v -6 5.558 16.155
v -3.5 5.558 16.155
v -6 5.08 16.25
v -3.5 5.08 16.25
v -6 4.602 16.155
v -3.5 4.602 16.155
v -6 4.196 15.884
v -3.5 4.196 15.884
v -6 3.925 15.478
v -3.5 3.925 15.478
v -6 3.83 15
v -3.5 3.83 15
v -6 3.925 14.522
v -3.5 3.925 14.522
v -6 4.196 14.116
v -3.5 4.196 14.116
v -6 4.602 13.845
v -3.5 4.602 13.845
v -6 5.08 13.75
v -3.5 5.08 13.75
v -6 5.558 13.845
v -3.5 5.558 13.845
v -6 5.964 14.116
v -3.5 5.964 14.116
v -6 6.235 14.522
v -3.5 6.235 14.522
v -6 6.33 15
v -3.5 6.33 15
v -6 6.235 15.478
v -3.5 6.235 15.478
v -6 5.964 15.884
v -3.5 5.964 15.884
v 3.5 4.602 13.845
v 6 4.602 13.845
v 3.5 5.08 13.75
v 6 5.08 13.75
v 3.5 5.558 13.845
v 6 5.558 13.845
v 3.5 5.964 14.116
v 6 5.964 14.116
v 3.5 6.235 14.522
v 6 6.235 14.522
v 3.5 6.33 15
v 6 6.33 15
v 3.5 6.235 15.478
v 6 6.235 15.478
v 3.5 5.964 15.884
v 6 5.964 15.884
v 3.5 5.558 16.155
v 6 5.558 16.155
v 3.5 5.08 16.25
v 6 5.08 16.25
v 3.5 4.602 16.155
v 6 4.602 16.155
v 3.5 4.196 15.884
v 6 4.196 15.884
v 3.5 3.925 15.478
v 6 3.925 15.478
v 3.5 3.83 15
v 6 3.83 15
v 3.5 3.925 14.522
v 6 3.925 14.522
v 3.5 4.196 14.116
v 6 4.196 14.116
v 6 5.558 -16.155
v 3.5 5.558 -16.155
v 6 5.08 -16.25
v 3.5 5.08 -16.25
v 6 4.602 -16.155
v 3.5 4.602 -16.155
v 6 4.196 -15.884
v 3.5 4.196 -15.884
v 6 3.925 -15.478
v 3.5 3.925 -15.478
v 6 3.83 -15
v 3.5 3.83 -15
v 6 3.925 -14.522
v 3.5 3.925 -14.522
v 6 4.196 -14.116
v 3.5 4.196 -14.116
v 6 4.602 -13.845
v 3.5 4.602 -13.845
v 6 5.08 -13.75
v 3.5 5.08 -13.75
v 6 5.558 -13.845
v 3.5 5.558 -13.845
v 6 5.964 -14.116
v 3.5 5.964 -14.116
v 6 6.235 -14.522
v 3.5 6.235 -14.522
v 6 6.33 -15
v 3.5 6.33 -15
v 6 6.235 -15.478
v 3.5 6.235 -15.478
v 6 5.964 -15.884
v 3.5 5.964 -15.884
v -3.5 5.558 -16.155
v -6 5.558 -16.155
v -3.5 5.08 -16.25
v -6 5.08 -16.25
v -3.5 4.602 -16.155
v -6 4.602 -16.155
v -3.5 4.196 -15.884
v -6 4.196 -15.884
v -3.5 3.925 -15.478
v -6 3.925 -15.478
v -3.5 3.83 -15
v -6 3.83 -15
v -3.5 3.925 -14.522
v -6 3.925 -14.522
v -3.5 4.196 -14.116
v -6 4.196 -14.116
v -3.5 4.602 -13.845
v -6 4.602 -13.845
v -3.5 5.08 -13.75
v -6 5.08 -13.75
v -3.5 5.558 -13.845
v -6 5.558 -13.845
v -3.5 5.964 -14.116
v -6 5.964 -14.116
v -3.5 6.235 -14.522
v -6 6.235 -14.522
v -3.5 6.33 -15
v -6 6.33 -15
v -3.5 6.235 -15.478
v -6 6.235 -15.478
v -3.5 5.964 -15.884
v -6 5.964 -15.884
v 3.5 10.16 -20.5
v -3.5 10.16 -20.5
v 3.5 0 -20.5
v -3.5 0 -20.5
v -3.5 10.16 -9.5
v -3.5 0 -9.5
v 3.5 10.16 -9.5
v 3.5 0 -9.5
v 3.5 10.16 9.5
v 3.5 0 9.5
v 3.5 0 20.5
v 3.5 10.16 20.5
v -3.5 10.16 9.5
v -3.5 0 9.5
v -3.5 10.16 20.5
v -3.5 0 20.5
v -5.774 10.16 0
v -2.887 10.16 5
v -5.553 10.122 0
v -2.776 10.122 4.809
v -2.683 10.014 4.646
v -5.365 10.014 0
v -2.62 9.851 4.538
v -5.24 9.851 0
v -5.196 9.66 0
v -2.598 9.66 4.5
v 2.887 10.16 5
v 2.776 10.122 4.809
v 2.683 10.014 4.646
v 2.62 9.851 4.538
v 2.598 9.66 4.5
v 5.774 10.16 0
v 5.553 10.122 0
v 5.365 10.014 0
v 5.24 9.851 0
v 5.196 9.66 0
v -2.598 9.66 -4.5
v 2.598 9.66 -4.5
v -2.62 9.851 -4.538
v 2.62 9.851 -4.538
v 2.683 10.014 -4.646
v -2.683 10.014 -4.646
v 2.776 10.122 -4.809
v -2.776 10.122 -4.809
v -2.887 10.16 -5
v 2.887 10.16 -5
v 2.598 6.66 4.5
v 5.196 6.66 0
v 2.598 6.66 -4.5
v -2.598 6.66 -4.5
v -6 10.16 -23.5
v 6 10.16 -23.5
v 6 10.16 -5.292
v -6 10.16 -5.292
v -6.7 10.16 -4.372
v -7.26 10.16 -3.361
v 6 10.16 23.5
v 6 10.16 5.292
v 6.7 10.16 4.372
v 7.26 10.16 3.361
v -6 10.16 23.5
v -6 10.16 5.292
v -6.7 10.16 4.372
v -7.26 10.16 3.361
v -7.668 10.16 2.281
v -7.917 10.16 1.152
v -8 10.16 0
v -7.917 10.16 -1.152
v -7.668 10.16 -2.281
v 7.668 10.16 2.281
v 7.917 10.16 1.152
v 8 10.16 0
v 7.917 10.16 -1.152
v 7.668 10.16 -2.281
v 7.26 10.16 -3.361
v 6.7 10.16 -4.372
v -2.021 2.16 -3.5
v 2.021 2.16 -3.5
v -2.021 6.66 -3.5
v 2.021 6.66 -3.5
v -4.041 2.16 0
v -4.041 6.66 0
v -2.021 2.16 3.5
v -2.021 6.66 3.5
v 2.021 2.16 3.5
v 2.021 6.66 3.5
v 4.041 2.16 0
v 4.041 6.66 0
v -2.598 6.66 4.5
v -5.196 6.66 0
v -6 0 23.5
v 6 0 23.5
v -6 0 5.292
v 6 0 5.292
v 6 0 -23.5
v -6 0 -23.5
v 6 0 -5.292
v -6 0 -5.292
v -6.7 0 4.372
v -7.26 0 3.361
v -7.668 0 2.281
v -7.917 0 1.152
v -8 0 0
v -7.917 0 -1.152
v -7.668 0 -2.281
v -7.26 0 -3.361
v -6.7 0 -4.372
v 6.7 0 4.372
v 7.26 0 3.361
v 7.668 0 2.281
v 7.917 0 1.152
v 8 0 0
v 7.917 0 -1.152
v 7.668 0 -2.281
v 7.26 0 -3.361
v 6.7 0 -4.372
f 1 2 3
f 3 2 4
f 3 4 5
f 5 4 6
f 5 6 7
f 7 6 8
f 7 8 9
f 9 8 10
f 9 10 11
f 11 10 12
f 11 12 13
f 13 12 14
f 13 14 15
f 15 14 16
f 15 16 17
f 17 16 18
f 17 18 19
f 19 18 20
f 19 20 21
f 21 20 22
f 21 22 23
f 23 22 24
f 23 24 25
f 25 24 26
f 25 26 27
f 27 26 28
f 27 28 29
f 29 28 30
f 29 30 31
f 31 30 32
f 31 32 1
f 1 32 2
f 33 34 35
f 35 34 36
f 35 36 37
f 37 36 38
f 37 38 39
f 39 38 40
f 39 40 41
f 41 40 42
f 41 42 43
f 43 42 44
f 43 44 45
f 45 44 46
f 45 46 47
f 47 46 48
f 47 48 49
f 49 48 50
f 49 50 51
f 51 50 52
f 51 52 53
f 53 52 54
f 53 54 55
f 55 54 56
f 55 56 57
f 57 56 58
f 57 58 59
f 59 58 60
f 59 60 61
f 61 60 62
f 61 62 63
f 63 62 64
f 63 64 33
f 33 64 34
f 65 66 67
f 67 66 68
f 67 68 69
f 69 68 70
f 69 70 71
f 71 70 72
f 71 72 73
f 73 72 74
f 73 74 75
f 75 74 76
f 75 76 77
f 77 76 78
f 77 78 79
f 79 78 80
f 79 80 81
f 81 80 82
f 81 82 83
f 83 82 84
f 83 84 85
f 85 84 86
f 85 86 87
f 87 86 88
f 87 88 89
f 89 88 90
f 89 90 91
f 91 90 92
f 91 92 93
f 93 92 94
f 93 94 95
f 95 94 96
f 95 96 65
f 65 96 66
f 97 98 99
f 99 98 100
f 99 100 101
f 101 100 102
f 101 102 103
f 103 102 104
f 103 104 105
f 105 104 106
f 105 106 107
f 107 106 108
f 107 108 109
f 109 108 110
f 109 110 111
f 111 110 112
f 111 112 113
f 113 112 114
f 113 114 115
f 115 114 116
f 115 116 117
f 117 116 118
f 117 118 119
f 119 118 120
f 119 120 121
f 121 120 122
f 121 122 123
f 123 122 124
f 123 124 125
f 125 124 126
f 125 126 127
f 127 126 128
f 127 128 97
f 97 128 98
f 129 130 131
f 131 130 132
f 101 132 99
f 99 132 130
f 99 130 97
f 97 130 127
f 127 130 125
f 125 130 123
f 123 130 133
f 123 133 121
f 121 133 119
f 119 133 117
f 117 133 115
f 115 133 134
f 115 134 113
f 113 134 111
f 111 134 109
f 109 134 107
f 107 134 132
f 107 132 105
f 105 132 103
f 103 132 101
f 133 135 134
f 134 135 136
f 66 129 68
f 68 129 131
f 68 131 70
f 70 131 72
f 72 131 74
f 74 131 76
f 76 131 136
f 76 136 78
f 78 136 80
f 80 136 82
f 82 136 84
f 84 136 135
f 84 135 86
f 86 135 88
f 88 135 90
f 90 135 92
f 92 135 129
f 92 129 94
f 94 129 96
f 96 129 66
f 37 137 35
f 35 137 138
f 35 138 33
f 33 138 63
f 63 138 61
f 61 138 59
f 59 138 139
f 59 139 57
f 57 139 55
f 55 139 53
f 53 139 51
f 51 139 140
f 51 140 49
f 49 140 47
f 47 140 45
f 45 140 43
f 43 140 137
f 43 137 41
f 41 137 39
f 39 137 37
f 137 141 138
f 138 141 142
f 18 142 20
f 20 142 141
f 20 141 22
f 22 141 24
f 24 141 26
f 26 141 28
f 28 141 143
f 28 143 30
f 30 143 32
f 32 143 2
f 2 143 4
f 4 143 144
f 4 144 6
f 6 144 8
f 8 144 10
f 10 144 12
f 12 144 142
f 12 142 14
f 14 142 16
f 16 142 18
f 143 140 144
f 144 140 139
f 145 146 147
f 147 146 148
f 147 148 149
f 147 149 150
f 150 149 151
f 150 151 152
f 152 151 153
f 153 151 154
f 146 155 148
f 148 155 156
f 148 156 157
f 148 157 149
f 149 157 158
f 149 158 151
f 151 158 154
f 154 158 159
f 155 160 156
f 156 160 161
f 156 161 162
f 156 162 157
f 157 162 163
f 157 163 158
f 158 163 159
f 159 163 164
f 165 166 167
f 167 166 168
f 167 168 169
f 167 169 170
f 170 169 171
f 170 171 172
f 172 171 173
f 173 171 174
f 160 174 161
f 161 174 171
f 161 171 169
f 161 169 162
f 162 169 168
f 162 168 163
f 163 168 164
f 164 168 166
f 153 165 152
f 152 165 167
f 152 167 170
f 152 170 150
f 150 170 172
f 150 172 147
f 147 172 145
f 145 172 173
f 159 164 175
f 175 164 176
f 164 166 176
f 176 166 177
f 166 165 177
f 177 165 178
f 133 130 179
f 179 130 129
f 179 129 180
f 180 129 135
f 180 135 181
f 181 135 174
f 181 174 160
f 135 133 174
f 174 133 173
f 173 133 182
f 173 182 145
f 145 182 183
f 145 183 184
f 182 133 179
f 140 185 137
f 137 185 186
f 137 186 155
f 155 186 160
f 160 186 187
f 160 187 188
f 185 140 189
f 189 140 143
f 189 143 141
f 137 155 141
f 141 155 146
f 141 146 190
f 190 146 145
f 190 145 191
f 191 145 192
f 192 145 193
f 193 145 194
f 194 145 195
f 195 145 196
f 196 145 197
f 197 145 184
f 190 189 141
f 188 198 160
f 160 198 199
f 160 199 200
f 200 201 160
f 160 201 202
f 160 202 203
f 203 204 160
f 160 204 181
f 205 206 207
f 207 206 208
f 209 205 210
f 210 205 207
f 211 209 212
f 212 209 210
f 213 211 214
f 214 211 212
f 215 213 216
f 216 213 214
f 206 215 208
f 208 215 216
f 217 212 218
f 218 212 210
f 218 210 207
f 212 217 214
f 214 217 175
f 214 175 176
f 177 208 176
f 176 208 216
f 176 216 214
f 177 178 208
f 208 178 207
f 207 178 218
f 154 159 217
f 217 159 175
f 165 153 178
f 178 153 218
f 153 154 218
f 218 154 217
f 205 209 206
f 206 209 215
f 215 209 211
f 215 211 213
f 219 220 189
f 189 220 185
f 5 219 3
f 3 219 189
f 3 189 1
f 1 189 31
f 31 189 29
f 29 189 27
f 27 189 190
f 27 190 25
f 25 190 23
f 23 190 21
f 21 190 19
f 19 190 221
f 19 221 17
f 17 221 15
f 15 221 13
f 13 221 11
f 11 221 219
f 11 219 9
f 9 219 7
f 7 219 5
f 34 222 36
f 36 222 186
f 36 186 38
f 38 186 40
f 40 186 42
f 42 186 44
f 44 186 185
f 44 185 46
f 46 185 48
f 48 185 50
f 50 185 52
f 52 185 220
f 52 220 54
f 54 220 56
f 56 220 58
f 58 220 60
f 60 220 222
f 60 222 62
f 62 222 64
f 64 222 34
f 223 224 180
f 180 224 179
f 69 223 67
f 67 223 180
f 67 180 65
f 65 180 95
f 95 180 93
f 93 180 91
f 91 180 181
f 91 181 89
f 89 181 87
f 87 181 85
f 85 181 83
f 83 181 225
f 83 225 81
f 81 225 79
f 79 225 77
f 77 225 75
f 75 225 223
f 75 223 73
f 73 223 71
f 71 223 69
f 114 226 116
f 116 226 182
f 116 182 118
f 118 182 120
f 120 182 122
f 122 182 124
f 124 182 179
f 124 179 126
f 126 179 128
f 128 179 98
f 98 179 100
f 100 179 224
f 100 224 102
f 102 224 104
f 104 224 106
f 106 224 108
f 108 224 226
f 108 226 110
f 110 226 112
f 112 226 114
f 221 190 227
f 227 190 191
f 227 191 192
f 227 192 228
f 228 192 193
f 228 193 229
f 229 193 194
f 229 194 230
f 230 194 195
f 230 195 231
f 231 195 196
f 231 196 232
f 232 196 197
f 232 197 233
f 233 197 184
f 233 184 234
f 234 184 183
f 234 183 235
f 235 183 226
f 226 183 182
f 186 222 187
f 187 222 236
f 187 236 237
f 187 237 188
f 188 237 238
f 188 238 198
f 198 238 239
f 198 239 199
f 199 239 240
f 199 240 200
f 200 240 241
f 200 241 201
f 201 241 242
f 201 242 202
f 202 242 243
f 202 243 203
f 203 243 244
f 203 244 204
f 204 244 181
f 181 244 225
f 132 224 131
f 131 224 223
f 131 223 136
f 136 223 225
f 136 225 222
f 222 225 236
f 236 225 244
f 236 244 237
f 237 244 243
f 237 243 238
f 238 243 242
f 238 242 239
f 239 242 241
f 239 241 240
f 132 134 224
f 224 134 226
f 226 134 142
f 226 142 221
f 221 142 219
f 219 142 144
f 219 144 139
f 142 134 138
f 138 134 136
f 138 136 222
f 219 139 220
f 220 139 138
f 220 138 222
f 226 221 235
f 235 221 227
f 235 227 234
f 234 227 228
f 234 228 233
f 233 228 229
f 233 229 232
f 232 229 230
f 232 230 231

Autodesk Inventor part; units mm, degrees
ref_plane "YZ Plane" through (0, 0, 0) normal (1, 0, 0) x (0, 1, 0)
ref_plane "XZ Plane" through (0, 0, 0) normal (0, 1, 0) x (-1, 0, 0)
ref_plane "XY Plane" through (0, 0, 0) normal (0, 0, 1) x (1, 0, 0)
sketch "스케치1" plane through (0, 0, 0) normal (0, 1, 0) x (-1, 0, 0)
  circle A0 centre (0, 0) radius 8
  dimension "d0" = 16
extrude "돌출1" add sketch "스케치1" along normal blind 10.16
sketch "스케치2" plane through (0, 10.16, 0) normal (0, 1, 0) x (1, 0, 0)
  circle A0 centre (0, 0) radius 4.5
  line L0 (2.5981, -4.5) -> (-2.5981, -4.5)
  line L1 (-2.5981, -4.5) -> (-5.1962, 0)
  line L2 (-5.1962, 0) -> (-2.5981, 4.5)
  line L3 (-2.5981, 4.5) -> (2.5981, 4.5)
  line L4 (2.5981, 4.5) -> (5.1962, 0)
  line L5 (5.1962, 0) -> (2.5981, -4.5)
  dimension "d3" = 9
sketch "스케치3" plane through (0, 0, 0) normal (0, -1, 0) x (1, 0, 0)
  line L0 (-3, 9.5) -> (3, 9.5)
  line L1 (3, 9.5) -> (3, 20.5)
  line L2 (3, 20.5) -> (-3, 20.5)
  line L3 (-3, 20.5) -> (-3, 9.5)
  line L4 (-3, 9.5) -> (3, 20.5) construction
  line L5 (3, 9.5) -> (-3, 20.5) construction
  line L6 (0, 0) -> (5.3002, 0)
  line L7 (-3, -9.5) -> (3, -9.5)
  line L8 (3, -9.5) -> (3, -20.5)
  line L9 (3, -20.5) -> (-3, -20.5)
  line L10 (-3, -20.5) -> (-3, -9.5)
  line L11 (-3, -9.5) -> (3, -20.5) construction
  line L12 (3, -9.5) -> (-3, -20.5) construction
  line L13 (6, 23.5) -> (-6, 23.5)
  line L14 (-6, 23.5) -> (-6, -23.5)
  line L15 (-6, -23.5) -> (6, -23.5)
  line L16 (6, -23.5) -> (6, 23.5)
  line L17 (6, 23.5) -> (-6, -23.5) construction
  line L18 (-6, 23.5) -> (6, -23.5) construction
  circle A0 centre (0, 0) radius 8 projected
  point P0 (0, 15)
  point P1 (0, -15)
  point P2 (6, 5.2915)
  point P3 (-6, 5.2915)
  point P4 (-6, -5.2915)
  point P5 (6, -5.2915)
  dimension "d7" = 6
  dimension "d8" = 11
  dimension "d10" = 15
  dimension "d11" = 3
  dimension "d12" = 3
extrude "돌출3" add sketch "스케치3" against normal blind 10.16 contours L3 L2 L1 L0 | L7 L8 L9 L10 | L16 A0 L14 L13 | L16 L15 L14 A0
extrude "돌출4" cut sketch "스케치2" against normal blind 8
sketch "스케치4" plane through (0, 2.16, 0) normal (0, 1, 0) x (1, 0, 0)
  line L0 (2.0207, 3.5) -> (4.0415, 0)
  line L1 (4.0415, 0) -> (2.0207, -3.5)
  line L2 (2.0207, -3.5) -> (-2.0207, -3.5)
  line L3 (-2.0207, -3.5) -> (-4.0415, 0)
  line L4 (-4.0415, 0) -> (-2.0207, 3.5)
  line L5 (-2.0207, 3.5) -> (2.0207, 3.5)
  line L6 (-2.5981, 4.5) -> (2.5981, 4.5) projected
  line L7 (2.5981, 4.5) -> (5.1962, 0) projected
  line L8 (-2.5981, 4.5) -> (2.5981, 4.5) projected
  line L9 (-5.1962, 0) -> (-2.5981, 4.5) projected
  line L10 (-2.5981, -4.5) -> (-5.1962, 0) projected
  line L11 (2.5981, -4.5) -> (-2.5981, -4.5) projected
  line L12 (5.1962, 0) -> (2.5981, -4.5) projected
  point P0 (0, 0)
  point P1 (0, 0)
  dimension "d17" = 1
extrude "돌출5" add sketch "스케치4" along normal blind 4.5
fillet "모깎기2" radius 0.5 6 edges at (3.8971, 10.16, -2.25) (3.8971, 10.16, 2.25) (0, 10.16, -4.5) (0, 10.16, 4.5) (-3.8971, 10.16, 2.25) (-3.8971, 10.16, -2.25)
sketch "스케치6" plane through (0, 10.16, 0) normal (0, 1, 0) x (1, 0, 0)
  line L0 (-3.5, -9.5) -> (3.5, -9.5)
  line L1 (3.5, -9.5) -> (3.5, -20.5)
  line L2 (3.5, -20.5) -> (-3.5, -20.5)
  line L3 (-3.5, -20.5) -> (-3.5, -9.5)
  line L4 (-3.5, -9.5) -> (3.5, -20.5) construction
  line L5 (3.5, -9.5) -> (-3.5, -20.5) construction
  line L6 (-6, -23.5) -> (6, -23.5) projected
  line L7 (6, -23.5) -> (6, -5.2915) projected
  line L8 (2.8868, -5) -> (5.7735, 0) projected
  line L9 (-5.1962, 0) -> (-5.7735, 0) projected
  line L10 (5.7735, 0) -> (-5.7735, 0)
  line L11 (-3.5, 9.5) -> (3.5, 9.5)
  line L12 (3.5, 9.5) -> (3.5, 20.5)
  line L13 (3.5, 20.5) -> (-3.5, 20.5)
  line L14 (-3.5, 20.5) -> (-3.5, 9.5)
  line L15 (-3.5, 9.5) -> (3.5, 20.5) construction
  line L16 (3.5, 9.5) -> (-3.5, 20.5) construction
  line L17 (-6, 23.5) -> (6, 23.5)
  line L18 (6, 23.5) -> (6, 5.2915)
  point P0 (0, 0)
  point P1 (0, -15)
  point P2 (0, 15)
  point P3 (0, 0)
  dimension "d21" = 7
  dimension "d22" = 11
  dimension "d23" = 3
extrude "돌출6" cut sketch "스케치6" against normal blind 10.16
sketch "스케치7" plane through (-6, 0, 5.2915) normal (-1, 0, 0) x (0, 0, 1)
  line L0 (4.2085, 10.16) -> (15.2085, 10.16) projected
  line L1 (4.2085, 10.16) -> (4.2085, 0) projected
  line L2 (15.2085, 0) -> (4.2085, 0) projected
  line L3 (15.2085, 10.16) -> (15.2085, 0) projected
  line L4 (-25.7915, 10.16) -> (-14.7915, 10.16) projected
  line L5 (-25.7915, 10.16) -> (-25.7915, 0) projected
  line L6 (-14.7915, 0) -> (-25.7915, 0) projected
  line L7 (-14.7915, 10.16) -> (-14.7915, 0) projected
  circle A0 centre (9.7085, 5.08) radius 1.25
  line L8 (-10.2915, 10.16) -> (-5.2915, 10.16) projected
  line L9 (-5.2915, 0) -> (-5.2915, 10.16)
  circle A1 centre (-20.2915, 5.08) radius 1.25
  point P0 (15.2085, 5.08)
  point P1 (9.7085, 0)
  dimension "d27" = 2.5
extrude "돌출7" cut sketch "스케치7" against normal up to surface (12 mm away) contours A0 | A1
properties part number "Tensile_test_top_adapter"
